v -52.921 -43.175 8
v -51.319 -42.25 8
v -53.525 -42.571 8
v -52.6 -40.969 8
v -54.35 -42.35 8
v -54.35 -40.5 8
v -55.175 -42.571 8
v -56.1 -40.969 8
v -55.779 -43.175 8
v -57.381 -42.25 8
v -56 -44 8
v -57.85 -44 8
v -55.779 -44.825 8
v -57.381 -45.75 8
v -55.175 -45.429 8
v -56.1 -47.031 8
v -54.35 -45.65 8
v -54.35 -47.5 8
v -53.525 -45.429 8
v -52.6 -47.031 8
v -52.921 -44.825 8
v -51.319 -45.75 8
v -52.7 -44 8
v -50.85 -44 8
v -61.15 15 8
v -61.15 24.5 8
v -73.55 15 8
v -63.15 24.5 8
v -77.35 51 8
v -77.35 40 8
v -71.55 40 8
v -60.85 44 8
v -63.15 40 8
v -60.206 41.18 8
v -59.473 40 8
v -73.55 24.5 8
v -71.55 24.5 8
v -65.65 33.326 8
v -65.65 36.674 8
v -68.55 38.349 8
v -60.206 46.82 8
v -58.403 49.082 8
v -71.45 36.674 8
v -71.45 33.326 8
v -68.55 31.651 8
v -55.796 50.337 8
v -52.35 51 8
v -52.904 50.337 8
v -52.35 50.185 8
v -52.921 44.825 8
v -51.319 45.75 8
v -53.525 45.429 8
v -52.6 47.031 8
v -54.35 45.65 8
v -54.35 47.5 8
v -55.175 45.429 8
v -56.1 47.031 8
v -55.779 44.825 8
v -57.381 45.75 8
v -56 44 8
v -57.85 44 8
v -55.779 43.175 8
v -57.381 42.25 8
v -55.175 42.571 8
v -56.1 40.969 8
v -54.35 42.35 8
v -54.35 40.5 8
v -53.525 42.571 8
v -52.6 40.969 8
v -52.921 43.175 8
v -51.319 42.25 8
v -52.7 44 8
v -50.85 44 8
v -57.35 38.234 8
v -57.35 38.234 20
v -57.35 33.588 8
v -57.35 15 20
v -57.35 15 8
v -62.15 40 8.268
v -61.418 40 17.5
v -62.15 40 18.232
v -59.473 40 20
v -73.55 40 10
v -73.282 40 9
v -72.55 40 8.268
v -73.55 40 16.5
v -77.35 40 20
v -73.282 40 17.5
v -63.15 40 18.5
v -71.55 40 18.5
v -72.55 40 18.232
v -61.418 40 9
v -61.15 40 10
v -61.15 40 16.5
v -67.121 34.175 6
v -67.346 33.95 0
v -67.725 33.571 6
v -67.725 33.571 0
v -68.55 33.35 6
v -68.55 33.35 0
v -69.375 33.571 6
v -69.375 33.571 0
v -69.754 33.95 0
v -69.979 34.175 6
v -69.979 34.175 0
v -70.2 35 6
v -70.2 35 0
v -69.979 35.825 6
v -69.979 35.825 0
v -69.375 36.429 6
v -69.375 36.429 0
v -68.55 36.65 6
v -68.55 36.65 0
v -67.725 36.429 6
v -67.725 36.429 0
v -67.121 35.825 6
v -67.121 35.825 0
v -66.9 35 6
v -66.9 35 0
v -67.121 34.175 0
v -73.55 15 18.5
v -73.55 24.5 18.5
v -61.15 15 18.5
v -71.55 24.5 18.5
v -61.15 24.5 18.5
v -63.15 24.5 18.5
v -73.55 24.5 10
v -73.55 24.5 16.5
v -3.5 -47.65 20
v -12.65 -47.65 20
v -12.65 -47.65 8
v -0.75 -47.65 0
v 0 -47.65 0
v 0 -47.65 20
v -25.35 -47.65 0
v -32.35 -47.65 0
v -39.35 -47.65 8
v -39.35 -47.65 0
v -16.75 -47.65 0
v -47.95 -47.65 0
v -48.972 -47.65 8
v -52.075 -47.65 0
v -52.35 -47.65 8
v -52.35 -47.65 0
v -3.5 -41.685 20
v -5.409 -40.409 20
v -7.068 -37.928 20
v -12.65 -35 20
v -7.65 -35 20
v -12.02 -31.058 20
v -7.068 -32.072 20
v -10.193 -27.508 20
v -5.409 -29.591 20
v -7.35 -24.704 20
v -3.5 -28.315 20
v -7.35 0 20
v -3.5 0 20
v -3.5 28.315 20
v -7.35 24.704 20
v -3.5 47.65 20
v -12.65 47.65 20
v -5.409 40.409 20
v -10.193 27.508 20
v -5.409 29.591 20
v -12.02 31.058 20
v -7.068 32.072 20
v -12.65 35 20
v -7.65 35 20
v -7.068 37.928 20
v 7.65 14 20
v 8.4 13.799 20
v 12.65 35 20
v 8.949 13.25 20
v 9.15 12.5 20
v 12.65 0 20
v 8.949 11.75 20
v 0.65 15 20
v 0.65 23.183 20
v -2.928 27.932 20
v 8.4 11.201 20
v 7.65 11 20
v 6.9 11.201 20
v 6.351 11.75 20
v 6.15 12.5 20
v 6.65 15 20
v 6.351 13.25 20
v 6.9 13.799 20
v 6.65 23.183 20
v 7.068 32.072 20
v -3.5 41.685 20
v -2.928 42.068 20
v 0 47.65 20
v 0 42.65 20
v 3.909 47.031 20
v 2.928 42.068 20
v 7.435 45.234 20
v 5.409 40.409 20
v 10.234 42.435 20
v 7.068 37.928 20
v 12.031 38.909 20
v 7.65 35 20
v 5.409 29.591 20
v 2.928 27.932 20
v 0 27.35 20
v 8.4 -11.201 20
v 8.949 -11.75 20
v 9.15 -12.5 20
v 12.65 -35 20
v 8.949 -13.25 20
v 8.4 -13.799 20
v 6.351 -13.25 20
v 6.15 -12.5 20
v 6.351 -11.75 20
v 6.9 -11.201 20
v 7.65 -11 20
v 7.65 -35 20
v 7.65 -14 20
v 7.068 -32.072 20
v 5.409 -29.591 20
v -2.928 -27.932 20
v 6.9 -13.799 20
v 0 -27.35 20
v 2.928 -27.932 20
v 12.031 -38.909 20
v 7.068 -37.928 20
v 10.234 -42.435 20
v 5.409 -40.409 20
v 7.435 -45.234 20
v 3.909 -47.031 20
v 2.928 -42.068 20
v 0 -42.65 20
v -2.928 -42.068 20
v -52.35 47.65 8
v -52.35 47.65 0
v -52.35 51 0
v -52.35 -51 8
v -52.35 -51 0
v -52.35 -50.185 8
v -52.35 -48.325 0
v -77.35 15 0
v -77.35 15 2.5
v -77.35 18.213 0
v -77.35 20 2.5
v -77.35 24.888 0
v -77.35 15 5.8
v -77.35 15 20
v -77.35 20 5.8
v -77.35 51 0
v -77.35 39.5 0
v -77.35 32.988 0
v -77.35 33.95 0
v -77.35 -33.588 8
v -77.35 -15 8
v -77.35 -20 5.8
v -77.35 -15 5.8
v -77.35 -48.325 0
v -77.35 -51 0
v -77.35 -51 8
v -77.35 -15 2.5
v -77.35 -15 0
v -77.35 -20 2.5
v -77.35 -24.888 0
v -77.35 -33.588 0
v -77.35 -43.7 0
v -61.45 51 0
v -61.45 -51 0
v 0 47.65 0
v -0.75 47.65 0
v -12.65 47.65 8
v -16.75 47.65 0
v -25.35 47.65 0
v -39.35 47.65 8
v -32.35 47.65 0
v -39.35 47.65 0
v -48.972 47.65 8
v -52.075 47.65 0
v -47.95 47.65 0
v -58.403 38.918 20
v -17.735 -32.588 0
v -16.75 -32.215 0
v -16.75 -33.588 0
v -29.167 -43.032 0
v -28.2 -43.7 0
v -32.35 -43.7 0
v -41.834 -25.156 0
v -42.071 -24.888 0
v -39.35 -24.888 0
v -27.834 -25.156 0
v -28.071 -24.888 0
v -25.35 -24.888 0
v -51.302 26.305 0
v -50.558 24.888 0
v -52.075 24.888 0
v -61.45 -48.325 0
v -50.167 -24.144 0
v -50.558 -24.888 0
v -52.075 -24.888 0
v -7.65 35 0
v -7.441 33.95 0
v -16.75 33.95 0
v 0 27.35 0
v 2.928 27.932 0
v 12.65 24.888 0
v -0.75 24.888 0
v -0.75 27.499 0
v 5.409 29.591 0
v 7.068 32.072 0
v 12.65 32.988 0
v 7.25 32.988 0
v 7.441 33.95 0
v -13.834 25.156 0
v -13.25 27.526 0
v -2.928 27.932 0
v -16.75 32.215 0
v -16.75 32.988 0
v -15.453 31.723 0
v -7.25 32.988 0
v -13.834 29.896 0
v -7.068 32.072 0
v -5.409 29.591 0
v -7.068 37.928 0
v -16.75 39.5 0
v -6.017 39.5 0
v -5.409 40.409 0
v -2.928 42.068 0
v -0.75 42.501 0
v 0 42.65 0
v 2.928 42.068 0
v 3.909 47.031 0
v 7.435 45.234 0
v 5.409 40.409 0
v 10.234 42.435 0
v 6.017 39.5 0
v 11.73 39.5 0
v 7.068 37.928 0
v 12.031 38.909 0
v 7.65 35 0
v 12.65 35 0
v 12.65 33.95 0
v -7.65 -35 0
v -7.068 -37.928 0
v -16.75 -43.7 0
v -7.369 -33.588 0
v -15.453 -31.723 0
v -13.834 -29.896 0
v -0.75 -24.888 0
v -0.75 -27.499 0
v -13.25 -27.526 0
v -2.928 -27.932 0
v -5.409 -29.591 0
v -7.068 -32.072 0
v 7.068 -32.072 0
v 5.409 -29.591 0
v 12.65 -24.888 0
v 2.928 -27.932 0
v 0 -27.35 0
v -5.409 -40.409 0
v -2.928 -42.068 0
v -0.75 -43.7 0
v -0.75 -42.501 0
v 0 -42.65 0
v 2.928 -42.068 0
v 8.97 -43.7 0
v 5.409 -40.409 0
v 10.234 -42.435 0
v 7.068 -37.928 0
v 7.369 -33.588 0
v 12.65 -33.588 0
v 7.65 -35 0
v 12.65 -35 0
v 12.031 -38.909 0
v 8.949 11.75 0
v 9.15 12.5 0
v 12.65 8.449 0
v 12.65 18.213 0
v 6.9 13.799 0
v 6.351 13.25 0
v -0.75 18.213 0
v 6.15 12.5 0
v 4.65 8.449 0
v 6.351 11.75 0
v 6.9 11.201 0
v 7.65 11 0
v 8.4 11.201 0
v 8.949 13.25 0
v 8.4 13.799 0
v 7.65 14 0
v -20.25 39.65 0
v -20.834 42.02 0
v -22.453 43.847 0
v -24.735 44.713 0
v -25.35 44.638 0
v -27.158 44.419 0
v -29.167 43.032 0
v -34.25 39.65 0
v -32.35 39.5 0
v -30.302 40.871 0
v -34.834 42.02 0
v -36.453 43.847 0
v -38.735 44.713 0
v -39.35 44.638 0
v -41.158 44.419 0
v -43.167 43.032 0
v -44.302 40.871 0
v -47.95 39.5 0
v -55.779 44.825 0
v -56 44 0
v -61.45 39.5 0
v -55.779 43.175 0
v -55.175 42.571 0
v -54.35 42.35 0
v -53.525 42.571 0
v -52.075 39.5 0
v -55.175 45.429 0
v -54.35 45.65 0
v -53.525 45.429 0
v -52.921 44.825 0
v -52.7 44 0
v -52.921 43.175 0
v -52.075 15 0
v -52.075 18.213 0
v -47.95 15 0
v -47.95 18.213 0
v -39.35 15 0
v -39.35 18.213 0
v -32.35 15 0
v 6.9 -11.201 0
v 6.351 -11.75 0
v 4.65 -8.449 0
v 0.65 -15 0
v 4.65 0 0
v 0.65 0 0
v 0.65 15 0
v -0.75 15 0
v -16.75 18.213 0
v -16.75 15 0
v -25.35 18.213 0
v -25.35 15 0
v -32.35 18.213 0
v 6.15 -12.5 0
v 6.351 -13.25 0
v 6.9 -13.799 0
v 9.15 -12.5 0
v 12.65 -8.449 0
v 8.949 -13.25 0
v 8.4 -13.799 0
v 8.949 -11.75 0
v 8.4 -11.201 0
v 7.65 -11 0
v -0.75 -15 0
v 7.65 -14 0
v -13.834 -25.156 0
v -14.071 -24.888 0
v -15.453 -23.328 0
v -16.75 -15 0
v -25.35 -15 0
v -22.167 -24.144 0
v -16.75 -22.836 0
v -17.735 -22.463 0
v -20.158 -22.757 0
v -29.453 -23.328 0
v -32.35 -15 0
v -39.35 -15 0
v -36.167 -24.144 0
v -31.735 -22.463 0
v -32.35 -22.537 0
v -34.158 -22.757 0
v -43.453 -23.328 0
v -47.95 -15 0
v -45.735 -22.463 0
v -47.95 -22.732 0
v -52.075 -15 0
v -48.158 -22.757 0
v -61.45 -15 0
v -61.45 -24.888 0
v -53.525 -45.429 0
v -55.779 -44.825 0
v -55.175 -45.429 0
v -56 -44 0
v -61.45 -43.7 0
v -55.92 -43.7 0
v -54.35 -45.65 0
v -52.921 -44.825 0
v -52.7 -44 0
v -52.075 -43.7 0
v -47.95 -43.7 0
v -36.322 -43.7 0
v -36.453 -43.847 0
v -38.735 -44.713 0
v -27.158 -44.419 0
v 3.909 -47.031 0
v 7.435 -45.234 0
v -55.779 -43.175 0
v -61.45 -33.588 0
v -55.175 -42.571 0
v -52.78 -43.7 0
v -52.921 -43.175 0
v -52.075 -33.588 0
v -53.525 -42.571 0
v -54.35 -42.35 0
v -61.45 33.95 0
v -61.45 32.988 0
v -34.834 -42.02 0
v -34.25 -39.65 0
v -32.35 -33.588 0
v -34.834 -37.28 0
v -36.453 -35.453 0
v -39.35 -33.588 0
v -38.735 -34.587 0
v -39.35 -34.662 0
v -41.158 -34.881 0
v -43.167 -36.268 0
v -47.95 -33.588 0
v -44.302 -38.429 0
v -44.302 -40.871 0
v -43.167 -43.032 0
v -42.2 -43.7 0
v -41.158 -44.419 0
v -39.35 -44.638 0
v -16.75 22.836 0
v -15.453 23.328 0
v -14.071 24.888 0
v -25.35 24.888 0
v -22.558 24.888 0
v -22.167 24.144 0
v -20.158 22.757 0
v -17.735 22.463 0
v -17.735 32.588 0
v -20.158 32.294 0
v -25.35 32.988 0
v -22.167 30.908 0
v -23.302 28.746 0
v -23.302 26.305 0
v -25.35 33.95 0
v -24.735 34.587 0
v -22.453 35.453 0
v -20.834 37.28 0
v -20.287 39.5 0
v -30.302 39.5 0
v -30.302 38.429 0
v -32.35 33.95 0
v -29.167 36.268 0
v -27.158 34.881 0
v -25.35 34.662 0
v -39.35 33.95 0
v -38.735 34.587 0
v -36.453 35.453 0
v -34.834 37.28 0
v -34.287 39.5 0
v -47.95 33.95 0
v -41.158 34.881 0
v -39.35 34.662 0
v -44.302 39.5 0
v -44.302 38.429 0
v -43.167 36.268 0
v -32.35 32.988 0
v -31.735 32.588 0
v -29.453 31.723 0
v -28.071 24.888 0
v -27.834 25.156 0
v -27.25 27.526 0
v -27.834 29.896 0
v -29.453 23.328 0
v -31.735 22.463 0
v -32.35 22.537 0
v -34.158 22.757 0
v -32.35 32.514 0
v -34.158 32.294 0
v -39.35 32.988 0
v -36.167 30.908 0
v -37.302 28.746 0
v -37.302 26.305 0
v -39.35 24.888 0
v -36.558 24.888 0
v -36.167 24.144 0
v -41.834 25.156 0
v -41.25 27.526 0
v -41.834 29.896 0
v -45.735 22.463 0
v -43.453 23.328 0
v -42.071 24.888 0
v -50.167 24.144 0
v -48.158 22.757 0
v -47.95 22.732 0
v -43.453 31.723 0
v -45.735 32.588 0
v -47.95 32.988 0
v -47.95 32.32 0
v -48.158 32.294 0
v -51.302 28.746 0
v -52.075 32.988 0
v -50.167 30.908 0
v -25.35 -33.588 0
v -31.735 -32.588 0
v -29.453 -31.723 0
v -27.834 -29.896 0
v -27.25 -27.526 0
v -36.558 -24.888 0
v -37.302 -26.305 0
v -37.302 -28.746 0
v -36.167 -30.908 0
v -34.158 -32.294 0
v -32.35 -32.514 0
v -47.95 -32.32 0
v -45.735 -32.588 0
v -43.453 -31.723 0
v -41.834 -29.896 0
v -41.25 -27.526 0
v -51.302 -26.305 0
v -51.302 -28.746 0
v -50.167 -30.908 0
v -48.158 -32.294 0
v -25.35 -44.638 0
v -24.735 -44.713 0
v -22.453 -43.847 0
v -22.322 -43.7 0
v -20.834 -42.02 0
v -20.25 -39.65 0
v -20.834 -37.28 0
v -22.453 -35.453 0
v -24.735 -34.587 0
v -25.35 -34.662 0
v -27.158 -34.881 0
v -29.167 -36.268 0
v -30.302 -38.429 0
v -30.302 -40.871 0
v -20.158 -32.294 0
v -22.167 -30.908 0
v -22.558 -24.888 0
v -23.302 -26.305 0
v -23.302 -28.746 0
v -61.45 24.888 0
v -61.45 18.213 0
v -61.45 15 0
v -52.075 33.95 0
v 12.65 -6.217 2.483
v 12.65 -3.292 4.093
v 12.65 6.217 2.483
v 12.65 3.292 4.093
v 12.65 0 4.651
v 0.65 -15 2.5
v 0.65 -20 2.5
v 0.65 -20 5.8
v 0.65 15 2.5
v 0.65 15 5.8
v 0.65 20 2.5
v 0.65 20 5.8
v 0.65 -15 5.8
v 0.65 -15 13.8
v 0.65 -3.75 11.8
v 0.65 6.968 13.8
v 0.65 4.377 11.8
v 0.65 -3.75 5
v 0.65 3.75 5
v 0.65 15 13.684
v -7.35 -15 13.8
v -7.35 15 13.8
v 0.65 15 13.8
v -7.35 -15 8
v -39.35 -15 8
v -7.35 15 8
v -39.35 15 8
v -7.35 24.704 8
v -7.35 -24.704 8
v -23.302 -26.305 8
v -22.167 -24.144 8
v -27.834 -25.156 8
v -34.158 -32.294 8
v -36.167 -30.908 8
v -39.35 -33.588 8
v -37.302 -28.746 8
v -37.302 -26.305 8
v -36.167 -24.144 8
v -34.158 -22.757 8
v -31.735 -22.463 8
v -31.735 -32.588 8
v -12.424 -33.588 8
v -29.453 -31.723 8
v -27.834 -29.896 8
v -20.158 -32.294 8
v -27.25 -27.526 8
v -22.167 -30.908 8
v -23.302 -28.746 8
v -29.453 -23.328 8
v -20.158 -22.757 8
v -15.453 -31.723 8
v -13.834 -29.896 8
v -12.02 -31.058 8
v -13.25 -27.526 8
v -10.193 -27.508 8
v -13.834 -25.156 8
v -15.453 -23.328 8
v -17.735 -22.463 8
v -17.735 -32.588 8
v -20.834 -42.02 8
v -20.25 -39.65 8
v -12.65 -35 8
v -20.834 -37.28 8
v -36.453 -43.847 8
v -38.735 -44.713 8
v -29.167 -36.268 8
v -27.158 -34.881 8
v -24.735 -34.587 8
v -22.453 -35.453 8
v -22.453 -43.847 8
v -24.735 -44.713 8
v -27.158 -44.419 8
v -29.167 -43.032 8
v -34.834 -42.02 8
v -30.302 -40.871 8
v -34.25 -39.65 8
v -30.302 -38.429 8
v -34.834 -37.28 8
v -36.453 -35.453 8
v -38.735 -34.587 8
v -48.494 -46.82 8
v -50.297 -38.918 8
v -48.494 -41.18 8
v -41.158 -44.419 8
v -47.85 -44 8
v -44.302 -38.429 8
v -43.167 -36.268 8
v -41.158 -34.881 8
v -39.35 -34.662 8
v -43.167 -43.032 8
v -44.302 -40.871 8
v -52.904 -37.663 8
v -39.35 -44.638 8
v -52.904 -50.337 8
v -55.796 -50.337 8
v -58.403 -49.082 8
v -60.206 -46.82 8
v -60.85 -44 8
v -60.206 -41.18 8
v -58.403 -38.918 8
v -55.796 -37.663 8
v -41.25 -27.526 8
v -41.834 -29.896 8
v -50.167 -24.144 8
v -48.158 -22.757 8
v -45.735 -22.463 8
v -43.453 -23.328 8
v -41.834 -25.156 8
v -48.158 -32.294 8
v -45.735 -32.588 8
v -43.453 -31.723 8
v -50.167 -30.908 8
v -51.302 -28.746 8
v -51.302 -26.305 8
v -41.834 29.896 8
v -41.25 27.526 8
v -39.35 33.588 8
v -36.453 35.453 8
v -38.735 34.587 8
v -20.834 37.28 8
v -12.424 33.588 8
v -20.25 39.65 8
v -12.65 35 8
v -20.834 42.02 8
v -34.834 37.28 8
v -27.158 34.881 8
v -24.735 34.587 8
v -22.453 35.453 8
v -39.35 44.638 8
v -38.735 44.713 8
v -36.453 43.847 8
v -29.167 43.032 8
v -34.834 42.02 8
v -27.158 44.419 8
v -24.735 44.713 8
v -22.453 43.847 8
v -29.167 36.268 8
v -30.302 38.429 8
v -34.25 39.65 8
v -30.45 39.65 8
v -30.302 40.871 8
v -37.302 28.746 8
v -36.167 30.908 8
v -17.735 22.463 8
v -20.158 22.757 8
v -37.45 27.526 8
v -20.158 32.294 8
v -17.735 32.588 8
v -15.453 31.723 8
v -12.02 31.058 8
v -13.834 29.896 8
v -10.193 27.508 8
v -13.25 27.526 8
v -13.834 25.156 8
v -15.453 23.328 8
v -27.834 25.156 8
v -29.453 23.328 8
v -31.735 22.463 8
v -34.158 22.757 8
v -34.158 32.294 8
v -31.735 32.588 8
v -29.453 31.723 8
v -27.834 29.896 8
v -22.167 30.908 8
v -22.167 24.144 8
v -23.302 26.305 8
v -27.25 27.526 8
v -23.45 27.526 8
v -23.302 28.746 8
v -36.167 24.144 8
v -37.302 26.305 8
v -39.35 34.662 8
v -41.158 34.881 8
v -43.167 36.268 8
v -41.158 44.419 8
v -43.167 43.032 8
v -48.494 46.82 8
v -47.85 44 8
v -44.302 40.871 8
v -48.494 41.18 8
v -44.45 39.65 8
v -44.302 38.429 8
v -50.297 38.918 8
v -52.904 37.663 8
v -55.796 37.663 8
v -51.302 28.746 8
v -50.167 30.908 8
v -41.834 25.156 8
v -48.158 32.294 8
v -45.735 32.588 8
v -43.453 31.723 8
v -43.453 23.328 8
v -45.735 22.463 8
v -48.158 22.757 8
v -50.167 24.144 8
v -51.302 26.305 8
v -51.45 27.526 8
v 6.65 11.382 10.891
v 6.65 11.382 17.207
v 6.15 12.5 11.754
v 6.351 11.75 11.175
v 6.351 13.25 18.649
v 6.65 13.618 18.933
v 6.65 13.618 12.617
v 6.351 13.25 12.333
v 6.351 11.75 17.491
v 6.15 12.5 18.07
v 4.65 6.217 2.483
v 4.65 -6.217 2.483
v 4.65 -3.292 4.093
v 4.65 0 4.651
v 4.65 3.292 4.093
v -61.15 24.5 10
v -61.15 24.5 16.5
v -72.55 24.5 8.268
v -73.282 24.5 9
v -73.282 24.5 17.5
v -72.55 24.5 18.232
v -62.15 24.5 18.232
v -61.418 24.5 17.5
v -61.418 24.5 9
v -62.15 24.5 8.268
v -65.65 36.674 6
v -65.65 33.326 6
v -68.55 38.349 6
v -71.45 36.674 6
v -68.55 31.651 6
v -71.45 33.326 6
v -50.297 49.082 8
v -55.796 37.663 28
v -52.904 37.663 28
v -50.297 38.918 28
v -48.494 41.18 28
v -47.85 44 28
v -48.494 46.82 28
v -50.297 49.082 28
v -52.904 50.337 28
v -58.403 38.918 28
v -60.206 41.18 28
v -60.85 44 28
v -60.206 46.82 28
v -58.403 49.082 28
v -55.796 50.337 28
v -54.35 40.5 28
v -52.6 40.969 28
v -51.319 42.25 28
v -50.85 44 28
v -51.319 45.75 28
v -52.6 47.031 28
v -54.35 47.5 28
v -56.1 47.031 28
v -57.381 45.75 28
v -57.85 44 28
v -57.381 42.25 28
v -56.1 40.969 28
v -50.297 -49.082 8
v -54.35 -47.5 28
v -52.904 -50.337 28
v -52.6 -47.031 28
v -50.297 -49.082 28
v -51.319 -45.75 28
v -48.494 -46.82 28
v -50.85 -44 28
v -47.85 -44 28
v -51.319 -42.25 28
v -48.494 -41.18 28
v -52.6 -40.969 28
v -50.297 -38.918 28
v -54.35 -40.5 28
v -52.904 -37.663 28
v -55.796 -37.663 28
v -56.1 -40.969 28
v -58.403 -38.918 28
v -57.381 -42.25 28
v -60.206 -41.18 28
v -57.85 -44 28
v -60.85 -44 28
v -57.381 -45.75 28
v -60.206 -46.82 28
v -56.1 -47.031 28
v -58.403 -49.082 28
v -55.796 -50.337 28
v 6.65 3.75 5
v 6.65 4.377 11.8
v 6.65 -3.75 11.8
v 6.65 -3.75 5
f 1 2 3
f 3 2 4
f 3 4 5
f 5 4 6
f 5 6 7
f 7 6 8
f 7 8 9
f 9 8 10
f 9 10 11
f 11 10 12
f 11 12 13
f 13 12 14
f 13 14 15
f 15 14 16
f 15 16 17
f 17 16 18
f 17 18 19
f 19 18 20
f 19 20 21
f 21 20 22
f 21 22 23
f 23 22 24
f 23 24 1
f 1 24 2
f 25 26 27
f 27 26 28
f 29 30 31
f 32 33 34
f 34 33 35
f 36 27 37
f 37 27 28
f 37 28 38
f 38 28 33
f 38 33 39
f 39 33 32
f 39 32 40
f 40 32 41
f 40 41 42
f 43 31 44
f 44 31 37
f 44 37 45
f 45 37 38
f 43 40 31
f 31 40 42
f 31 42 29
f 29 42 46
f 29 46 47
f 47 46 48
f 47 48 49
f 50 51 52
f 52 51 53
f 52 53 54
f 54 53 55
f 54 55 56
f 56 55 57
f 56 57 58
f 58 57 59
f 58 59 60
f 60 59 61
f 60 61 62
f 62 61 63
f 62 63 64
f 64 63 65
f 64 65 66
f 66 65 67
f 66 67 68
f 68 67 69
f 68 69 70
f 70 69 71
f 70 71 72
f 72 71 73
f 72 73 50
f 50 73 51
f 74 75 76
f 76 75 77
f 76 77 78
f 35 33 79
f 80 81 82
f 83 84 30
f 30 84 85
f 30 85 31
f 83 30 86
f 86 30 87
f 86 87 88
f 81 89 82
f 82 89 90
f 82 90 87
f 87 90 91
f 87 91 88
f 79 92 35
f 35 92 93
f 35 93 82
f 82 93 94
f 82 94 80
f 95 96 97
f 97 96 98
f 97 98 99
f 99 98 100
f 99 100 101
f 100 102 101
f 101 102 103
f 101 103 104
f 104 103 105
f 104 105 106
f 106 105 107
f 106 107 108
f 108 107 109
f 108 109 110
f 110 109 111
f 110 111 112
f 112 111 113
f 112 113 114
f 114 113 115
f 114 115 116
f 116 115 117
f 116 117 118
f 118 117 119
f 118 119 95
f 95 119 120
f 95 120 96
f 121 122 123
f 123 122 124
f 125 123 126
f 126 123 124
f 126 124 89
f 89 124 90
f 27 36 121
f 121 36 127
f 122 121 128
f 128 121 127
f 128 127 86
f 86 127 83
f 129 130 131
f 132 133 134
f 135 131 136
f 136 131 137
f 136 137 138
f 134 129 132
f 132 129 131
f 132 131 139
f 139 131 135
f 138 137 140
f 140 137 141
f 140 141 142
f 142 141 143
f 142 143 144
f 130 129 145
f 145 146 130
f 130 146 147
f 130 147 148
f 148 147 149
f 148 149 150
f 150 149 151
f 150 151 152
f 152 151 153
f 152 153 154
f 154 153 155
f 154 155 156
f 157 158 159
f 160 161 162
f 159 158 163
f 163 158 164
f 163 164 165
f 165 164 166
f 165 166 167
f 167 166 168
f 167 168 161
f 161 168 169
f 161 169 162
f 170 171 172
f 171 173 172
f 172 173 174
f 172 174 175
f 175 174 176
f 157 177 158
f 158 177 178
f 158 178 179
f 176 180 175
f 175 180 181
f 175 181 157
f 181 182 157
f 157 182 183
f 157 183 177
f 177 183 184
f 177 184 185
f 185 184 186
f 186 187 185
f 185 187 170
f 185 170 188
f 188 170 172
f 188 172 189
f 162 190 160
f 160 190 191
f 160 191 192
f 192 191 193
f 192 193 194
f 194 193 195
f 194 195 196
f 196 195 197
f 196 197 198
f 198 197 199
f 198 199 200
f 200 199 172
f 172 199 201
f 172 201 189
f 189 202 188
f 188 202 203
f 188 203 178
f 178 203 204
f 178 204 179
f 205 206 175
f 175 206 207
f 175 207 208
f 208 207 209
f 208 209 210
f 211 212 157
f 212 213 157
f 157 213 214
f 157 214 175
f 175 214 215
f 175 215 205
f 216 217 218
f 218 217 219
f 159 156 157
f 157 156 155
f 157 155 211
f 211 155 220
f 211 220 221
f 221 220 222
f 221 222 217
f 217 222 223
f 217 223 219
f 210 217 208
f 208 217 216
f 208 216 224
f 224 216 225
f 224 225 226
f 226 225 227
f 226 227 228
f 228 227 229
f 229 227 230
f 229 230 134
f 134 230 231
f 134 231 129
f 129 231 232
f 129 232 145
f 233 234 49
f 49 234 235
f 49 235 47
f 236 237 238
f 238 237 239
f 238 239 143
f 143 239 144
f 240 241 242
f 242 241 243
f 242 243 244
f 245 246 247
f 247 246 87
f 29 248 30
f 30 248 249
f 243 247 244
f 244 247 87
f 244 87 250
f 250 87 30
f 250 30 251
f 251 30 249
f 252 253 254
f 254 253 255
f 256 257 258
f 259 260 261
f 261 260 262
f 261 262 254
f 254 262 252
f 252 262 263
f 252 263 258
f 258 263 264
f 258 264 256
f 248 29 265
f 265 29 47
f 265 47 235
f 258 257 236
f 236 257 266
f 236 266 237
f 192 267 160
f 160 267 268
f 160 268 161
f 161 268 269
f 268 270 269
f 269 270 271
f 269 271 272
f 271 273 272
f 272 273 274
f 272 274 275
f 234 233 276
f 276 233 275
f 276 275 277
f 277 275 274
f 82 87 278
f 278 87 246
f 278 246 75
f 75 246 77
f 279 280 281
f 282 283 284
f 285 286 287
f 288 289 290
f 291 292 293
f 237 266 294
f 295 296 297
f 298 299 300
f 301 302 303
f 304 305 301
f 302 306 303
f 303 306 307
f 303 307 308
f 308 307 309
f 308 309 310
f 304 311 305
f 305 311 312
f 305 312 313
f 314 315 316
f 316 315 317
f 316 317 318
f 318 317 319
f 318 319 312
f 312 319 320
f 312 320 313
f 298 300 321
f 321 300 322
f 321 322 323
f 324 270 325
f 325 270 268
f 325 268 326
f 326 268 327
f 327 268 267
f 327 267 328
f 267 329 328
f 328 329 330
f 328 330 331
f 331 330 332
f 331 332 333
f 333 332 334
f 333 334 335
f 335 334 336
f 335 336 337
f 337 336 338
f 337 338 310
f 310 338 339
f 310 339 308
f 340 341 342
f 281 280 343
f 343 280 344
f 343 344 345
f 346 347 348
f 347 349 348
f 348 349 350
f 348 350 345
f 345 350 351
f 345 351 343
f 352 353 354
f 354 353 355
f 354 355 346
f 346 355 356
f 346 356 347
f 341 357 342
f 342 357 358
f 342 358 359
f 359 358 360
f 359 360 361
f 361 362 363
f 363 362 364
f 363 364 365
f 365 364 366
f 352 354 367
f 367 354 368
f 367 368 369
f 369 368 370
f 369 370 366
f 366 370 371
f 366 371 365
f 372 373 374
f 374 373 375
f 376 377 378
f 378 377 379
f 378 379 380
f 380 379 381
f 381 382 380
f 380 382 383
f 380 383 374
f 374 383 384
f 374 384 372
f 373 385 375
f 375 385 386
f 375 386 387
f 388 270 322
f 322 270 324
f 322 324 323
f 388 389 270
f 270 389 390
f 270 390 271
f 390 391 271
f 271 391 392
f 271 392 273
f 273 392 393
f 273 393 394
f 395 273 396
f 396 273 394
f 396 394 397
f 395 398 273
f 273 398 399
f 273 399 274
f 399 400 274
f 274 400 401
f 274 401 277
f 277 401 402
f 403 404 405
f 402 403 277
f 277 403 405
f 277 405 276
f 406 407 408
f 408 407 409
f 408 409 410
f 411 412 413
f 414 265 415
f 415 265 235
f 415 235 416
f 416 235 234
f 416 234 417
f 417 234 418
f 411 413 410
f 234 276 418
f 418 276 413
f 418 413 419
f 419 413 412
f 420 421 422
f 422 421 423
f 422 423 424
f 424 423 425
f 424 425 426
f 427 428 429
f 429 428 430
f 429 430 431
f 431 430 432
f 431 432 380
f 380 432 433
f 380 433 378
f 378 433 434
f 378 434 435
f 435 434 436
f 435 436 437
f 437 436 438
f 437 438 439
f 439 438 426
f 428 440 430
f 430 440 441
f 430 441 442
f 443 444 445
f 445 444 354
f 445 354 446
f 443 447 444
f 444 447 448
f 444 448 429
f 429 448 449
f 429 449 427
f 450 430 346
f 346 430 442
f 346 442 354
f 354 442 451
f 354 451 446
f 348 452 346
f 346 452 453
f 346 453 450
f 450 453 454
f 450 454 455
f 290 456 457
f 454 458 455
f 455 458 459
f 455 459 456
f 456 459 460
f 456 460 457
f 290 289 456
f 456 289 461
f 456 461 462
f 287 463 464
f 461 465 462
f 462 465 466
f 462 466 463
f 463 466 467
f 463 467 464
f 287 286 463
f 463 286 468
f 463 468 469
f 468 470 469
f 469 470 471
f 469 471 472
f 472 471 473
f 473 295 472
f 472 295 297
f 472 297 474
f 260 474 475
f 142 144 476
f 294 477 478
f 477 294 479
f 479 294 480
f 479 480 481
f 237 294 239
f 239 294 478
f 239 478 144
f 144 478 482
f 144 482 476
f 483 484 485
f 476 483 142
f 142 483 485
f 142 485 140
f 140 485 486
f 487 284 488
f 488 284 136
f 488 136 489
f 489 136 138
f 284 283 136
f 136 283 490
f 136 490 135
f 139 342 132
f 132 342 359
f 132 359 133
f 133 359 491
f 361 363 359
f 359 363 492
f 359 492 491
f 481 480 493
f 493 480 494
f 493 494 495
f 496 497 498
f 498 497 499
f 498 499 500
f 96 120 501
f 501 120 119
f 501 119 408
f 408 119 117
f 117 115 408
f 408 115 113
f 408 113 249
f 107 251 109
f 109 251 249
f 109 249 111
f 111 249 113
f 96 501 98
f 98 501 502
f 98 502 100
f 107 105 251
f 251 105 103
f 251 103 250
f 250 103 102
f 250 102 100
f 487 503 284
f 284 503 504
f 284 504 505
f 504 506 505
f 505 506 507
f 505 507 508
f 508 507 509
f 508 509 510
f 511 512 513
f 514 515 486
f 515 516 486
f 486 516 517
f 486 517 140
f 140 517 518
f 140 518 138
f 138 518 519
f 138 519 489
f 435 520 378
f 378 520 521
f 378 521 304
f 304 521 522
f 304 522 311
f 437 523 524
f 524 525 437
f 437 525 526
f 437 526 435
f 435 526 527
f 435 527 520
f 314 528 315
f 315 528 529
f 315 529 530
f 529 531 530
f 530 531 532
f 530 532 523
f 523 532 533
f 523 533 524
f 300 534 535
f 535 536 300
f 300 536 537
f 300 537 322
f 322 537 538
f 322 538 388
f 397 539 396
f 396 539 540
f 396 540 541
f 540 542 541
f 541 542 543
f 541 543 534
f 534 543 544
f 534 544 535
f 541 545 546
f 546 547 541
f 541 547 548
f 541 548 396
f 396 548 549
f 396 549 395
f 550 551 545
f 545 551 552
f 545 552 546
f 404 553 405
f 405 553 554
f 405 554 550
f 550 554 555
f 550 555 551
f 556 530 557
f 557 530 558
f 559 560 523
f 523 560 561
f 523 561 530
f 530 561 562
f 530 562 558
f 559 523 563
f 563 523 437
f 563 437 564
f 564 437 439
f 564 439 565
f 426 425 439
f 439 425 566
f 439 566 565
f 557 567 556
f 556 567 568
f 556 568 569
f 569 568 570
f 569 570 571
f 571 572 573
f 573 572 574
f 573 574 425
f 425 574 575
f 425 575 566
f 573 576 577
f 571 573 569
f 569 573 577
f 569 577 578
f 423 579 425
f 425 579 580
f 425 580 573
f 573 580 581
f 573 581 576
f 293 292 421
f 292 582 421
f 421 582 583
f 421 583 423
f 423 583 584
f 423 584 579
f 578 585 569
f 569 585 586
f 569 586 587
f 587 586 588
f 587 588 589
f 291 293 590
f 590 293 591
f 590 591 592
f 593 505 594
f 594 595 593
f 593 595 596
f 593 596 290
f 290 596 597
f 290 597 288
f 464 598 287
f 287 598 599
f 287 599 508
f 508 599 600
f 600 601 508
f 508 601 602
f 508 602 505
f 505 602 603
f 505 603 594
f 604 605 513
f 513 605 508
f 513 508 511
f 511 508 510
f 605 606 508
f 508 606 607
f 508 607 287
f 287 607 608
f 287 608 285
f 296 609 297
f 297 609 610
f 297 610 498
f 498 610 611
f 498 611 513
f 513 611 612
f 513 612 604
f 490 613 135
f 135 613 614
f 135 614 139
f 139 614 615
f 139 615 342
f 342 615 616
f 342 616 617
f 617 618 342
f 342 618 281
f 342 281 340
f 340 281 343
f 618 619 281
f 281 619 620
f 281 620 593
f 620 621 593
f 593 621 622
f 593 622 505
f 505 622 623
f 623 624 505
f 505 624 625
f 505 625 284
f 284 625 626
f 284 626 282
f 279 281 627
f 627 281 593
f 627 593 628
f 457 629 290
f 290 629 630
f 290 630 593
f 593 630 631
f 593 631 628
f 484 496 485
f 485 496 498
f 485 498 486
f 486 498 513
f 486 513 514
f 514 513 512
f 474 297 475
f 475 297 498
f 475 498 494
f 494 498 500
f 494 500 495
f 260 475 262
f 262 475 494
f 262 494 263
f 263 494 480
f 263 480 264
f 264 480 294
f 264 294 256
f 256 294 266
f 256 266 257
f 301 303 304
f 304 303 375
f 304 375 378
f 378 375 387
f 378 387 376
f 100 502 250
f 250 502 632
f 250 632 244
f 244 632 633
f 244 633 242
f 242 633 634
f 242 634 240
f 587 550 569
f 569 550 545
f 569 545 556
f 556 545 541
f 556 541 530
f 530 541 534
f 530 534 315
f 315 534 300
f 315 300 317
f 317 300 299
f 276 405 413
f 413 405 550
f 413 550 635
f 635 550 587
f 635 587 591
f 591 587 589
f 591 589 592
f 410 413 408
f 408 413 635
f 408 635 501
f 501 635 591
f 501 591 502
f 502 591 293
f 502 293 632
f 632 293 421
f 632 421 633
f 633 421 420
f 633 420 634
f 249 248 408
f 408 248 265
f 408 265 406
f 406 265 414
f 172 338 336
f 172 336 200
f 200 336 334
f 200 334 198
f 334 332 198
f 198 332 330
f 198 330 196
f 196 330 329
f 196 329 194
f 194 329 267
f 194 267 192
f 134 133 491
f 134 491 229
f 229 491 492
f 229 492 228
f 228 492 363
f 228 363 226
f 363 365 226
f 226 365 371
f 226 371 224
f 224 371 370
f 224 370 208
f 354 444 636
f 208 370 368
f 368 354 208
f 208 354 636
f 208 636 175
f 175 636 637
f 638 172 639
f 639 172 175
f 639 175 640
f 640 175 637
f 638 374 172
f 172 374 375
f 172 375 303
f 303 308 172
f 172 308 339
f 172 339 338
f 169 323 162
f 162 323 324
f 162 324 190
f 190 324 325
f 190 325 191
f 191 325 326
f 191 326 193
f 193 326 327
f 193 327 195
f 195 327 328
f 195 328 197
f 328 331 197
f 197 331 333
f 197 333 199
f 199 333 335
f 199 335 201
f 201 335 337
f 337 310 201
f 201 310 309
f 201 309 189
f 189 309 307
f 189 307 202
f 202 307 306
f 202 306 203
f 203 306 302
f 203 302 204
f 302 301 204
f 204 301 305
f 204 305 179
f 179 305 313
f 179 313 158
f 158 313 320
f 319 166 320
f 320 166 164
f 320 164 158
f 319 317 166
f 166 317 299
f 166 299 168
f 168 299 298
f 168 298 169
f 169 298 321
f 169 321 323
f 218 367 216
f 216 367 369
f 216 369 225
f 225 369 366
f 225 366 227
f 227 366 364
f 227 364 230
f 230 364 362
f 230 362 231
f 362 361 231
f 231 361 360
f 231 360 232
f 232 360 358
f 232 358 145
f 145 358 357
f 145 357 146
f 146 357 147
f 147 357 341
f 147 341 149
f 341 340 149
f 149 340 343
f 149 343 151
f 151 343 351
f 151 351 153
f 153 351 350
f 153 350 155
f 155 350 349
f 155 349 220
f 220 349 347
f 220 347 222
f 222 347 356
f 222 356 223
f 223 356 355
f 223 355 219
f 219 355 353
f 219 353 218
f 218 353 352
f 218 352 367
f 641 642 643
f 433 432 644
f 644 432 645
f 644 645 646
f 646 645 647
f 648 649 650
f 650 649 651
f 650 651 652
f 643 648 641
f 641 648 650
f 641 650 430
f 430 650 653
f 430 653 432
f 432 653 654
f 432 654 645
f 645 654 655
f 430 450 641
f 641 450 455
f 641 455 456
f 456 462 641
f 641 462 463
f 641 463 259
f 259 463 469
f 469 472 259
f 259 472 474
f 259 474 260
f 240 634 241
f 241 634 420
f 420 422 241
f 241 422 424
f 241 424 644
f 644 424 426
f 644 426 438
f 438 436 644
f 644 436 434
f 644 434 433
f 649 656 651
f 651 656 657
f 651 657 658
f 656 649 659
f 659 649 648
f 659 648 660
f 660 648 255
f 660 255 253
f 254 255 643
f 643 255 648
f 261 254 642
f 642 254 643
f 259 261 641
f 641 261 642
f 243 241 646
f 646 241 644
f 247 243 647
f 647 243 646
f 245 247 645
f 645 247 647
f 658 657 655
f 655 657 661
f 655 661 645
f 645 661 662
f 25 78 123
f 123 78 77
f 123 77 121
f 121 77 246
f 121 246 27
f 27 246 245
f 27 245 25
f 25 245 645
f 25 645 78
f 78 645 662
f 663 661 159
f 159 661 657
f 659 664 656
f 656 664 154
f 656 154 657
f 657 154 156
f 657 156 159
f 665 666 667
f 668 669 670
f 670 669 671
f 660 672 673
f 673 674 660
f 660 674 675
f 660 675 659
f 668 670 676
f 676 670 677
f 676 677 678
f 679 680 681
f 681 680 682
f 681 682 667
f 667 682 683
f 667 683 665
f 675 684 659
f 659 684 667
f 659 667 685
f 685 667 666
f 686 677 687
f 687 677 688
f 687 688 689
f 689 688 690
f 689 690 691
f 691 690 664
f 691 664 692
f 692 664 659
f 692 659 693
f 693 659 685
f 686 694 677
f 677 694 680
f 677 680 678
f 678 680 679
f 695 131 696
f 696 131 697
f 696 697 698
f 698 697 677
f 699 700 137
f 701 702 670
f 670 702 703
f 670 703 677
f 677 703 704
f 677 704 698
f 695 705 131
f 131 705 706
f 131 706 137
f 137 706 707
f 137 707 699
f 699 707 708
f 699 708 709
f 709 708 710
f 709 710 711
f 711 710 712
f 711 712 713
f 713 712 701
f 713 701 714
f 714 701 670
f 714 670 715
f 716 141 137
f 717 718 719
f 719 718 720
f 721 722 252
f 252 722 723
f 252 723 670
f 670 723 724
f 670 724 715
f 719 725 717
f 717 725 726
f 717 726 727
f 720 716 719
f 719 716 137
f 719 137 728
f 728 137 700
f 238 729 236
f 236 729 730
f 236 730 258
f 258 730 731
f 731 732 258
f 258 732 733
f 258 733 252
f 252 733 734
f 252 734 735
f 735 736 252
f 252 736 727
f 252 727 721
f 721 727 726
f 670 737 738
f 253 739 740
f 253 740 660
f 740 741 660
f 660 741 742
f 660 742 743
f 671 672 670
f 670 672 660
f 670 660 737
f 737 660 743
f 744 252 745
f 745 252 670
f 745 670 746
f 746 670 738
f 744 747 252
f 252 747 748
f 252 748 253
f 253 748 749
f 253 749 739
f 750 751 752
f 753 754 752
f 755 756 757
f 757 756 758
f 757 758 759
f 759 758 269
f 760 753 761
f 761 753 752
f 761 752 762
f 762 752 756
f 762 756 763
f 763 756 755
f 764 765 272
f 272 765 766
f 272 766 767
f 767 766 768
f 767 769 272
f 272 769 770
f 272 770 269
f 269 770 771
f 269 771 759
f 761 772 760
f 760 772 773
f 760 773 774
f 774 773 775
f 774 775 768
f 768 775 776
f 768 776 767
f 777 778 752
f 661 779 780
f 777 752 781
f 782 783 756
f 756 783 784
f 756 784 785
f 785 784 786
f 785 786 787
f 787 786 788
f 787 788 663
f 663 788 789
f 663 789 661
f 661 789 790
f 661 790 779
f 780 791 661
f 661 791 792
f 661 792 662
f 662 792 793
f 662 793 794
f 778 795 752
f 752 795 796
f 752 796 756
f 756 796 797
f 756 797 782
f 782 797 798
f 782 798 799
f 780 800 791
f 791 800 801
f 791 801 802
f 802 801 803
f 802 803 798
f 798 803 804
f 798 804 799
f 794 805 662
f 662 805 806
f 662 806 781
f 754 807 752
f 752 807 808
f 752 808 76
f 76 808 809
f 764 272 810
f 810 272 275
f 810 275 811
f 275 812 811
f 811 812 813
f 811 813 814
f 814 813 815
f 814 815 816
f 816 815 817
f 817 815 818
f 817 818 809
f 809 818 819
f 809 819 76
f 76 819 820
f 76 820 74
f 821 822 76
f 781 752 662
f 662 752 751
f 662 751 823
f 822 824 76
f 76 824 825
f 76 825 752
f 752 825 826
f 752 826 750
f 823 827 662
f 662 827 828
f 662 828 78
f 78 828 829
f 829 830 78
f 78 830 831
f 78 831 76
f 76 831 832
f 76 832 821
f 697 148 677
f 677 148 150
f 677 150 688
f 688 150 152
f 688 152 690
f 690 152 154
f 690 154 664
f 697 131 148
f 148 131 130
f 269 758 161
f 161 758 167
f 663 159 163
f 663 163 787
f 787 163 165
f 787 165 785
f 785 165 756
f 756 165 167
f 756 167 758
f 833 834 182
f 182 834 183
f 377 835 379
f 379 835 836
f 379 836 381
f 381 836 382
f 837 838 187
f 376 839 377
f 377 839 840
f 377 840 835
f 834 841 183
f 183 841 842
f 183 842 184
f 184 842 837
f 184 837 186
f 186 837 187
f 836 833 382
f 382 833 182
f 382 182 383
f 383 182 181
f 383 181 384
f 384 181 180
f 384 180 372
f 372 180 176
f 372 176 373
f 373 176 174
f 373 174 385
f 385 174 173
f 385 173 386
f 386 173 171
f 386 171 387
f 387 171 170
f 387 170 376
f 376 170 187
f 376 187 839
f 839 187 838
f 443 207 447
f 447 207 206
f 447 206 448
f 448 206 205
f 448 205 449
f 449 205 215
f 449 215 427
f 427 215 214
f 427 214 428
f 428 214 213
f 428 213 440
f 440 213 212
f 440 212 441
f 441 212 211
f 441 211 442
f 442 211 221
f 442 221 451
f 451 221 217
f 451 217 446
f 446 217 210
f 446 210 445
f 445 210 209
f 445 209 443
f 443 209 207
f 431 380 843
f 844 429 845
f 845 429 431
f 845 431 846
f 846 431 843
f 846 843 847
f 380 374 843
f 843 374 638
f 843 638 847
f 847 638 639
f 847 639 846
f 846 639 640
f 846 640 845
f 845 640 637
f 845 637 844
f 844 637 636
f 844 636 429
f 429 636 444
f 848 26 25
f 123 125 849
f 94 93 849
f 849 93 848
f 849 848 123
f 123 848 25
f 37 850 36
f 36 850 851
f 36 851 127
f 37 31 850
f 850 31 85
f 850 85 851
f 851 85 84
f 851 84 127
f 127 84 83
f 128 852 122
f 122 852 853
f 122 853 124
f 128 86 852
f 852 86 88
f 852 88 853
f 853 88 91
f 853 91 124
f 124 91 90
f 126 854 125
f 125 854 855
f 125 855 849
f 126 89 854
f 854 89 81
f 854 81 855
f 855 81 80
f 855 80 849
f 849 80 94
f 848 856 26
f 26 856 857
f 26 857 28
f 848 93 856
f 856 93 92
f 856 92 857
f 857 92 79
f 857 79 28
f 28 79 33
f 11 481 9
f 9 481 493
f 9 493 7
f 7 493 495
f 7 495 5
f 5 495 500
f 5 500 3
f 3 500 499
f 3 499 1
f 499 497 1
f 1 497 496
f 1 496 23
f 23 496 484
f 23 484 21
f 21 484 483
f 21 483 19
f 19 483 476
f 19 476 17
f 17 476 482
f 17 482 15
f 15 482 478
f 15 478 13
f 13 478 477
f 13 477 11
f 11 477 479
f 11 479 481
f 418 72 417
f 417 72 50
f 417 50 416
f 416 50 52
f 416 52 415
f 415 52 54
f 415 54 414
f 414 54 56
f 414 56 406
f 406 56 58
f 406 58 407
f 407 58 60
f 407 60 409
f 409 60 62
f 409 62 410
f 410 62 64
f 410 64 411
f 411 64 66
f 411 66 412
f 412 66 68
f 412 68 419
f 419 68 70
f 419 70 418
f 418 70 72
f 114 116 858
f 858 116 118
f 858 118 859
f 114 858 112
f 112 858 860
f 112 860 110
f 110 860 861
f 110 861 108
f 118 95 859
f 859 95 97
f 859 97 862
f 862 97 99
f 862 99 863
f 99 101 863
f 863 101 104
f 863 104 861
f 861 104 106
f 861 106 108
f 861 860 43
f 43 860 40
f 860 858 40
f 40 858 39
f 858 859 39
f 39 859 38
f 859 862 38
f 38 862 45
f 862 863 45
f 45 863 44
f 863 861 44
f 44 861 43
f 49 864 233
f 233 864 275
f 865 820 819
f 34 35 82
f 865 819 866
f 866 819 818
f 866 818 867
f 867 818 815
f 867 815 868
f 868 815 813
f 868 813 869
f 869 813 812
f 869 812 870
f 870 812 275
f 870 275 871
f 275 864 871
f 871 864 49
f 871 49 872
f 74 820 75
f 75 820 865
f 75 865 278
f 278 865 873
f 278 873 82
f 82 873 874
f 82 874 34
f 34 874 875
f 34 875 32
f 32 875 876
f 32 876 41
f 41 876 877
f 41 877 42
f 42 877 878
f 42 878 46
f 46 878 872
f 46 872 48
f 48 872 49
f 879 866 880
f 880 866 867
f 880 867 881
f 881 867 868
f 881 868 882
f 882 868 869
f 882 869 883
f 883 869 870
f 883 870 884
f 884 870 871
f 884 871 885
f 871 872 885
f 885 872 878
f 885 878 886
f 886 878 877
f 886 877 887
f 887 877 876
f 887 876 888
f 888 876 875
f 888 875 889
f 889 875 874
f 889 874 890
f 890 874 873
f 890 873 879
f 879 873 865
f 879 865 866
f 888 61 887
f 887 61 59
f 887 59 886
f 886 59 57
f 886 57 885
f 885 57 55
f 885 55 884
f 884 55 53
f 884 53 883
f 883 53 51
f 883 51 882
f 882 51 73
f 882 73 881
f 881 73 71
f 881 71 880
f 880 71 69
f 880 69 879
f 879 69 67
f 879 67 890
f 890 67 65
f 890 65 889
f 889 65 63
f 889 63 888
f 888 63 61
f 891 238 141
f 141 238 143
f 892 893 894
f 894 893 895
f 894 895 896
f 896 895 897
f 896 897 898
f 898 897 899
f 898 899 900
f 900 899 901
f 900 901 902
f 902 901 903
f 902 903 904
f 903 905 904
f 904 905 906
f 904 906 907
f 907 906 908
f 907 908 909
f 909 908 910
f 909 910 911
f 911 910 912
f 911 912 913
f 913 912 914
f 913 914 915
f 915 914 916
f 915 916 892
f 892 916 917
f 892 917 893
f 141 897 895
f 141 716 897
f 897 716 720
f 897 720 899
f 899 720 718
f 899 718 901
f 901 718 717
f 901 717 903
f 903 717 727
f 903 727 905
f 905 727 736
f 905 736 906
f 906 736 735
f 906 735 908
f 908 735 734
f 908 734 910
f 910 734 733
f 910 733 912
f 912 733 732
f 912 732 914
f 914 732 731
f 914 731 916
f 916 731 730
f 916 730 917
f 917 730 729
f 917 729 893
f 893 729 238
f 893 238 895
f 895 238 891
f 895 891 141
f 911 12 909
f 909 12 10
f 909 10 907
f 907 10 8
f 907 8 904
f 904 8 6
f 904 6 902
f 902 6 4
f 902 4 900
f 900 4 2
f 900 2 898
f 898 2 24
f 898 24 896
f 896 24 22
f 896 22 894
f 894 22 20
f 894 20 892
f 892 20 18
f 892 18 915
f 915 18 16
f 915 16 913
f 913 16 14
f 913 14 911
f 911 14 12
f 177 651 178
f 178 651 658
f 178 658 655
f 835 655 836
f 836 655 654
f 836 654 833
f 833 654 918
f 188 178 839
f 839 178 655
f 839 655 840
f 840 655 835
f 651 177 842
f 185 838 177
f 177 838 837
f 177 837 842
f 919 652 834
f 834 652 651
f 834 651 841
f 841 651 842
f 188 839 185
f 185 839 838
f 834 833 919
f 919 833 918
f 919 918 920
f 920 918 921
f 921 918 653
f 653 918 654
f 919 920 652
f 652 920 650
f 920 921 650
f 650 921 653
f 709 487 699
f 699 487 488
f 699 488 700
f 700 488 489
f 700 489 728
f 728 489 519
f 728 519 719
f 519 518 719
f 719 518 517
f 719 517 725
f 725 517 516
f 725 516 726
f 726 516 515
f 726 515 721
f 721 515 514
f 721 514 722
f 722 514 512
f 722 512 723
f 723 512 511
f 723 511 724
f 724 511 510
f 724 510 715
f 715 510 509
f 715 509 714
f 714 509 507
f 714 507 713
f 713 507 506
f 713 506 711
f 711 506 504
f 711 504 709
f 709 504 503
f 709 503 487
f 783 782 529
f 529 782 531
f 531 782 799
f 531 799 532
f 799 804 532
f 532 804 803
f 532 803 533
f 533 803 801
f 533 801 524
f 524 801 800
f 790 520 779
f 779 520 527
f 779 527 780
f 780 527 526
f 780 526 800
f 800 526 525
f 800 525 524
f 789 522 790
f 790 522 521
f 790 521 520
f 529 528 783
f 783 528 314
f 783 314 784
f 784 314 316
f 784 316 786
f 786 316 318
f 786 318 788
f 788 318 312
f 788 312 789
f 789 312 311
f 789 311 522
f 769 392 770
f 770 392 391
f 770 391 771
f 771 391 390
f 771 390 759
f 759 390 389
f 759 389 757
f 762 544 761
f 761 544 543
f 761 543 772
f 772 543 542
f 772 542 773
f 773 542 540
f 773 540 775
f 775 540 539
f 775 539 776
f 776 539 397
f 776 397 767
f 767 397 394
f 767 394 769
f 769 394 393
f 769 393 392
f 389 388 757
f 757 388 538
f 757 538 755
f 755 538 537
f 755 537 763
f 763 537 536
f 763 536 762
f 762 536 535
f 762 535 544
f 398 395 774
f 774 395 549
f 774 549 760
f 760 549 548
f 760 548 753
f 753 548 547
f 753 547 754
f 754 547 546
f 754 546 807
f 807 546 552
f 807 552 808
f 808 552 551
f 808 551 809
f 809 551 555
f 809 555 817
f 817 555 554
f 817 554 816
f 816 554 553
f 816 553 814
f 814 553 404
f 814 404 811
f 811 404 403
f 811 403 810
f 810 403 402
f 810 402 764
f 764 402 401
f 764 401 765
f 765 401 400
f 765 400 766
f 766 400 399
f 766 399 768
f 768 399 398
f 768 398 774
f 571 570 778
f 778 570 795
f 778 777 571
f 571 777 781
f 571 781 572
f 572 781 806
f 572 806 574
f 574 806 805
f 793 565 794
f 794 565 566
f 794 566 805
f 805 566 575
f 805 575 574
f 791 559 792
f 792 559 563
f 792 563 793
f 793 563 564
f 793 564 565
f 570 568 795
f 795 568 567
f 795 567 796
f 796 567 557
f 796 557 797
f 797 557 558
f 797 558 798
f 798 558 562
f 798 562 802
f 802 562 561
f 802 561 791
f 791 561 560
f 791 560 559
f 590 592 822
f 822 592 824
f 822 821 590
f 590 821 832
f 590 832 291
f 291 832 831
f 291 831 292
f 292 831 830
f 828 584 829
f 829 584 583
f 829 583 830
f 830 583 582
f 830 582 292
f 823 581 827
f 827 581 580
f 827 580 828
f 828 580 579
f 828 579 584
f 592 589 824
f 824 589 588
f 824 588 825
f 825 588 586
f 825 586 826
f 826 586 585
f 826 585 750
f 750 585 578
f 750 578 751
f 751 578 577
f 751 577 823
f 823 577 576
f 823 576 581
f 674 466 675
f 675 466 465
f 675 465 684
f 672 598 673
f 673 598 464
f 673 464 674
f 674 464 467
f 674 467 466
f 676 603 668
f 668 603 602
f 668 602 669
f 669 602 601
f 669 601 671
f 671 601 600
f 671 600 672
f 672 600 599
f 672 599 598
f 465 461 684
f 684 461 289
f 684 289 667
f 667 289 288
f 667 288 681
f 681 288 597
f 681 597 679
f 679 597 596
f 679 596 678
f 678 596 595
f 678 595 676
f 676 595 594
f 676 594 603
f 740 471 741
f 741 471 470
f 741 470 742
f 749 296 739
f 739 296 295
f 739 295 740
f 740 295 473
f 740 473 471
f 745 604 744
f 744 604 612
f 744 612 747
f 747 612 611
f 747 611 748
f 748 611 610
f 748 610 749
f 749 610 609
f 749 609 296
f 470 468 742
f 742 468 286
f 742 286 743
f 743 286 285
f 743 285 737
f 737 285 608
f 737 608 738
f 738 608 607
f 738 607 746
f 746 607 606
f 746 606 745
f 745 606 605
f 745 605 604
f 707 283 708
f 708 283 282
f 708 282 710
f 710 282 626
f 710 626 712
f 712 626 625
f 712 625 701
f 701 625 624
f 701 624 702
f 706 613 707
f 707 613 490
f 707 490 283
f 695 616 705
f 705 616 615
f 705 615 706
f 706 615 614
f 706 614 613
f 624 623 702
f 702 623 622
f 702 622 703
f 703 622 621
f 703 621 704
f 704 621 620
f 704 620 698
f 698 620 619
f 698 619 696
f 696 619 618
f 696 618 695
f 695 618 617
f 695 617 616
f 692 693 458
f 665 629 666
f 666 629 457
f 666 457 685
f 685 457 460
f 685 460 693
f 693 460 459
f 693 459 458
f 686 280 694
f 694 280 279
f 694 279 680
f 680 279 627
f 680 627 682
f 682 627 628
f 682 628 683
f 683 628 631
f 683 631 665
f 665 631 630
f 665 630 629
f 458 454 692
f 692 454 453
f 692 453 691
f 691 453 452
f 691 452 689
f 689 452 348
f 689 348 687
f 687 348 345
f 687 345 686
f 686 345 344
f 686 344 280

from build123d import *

# Parameters (mm, degrees)
ESBO_O1_R                  = 7.65
RESSALTO_EXTRUS_O1_DEPTH   = 20
ESBO_O2_W                  = 25
ESBO_O2_H                  = 20
RESSALTO_EXTRUS_O2_DEPTH   = 51
CORTE_EXTRUS_O1_DEPTH      = 78
CORTE_EXTRUS_O4_DEPTH      = 12
ESBO_O6_R                  = 1.5
CORTE_EXTRUS_O6_DEPTH      = 13
CORTE_EXTRUS_O6_DEPTH_BACK = 9
ESBO_O7_R                  = 10
CORTE_EXTRUS_O7_DEPTH      = 8
ESBO_O9_W                  = 12.4
ESBO_O9_H                  = 10.5
CORTE_EXTRUS_O8_DEPTH      = 25
RESSALTO_EXTRUS_O3_DEPTH   = 15.5
ESBO_O12_R                 = 1.65
CORTE_EXTRUS_O9_DEPTH      = 10
CORTE_EXTRUS_O11_DEPTH     = 2
ESBO_O16_R                 = 6.5
ESBO_O16_R_2               = 3.5
RESSALTO_EXTRUS_O4_DEPTH   = 20
CORTE_EXTRUS_O13_DEPTH     = 6
ESBO_O18_R                 = 5.1
CORTE_EXTRUS_O14_DEPTH     = 10


with BuildPart() as part:
    # Esboço1 → Ressalto-extrusão1 (new body)
    with BuildSketch(Plane.XY):
        with BuildLine():
            Line((12.65, 35), (12.65, -35))
            ThreePointArc((12.65, -35), (8.944900782, -43.944900782), (0, -47.65))
            Line((0, -47.65), (-72.35, -47.65))
            Line((-72.35, -47.65), (-72.35, 47.65))
            Line((-72.35, 47.65), (0, 47.65))
            ThreePointArc((0, 47.65), (8.944900782, 43.944900782), (12.65, 35))
        make_face()
        with Locations((0, 35)):
            Circle(ESBO_O1_R, mode=Mode.SUBTRACT)
        with Locations((0, -35)):
            Circle(ESBO_O1_R, mode=Mode.SUBTRACT)
    extrude(amount=RESSALTO_EXTRUS_O1_DEPTH)

    # Esboço2 → Ressalto-extrusão2 (add, symmetric)
    with BuildSketch(Plane(origin=(0, 0, 0), x_dir=(1, 0, 0), z_dir=(0, 1, 0))):
        with Locations((-64.85, -10)):
            Rectangle(ESBO_O2_W, ESBO_O2_H)
    extrude(amount=RESSALTO_EXTRUS_O2_DEPTH, both=True)

    # Esboço3 → Corte-extrusão1 (cut)
    with BuildSketch(Plane.ZY.offset(77.35)):
        Polygon((13.8, 15), (5.8, 15), (5.8, 20), (2.5, 20), (2.5, 15), (-3, 15), (-3, -15), (2.5, -15), (2.5, -20), (5.8, -20), (5.8, -15), (13.8, -15), align=None)
    extrude(amount=-CORTE_EXTRUS_O1_DEPTH, mode=Mode.SUBTRACT)

    # Esboço4 → Corte-extrusão4 (cut)
    with BuildSketch(Plane.XY.offset(20)):
        with BuildLine():
            Line((-77.35, 40), (-57.35, 40))
            Line((-57.35, 40), (-57.35, 15))
            Line((-57.35, 15), (-77.35, 15))
            Line((-77.35, 15), (-77.35, -51))
            Line((-77.35, -51), (-52.35, -51))
            Line((-52.35, -51), (-52.35, -47.65))
            Line((-52.35, -47.65), (-12.65, -47.65))
            Line((-12.65, -47.65), (-12.65, -35))
            ThreePointArc((-12.65, -35), (-11.247221879, -29.210138171), (-7.35, -24.704369859))
            Line((-7.35, -24.704369859), (-7.35, -0.323389166))
            Line((-7.35, -0.323389166), (-7.35, 24.704369859))
            ThreePointArc((-7.35, 24.704369859), (-11.247221879, 29.210138171), (-12.65, 35))
            Line((-12.65, 35), (-12.65, 47.65))
            Line((-12.65, 47.65), (-52.35, 47.65))
            Line((-52.35, 47.65), (-52.35, 51))
            Line((-52.35, 51), (-77.35, 51))
            Line((-77.35, 51), (-77.35, 40))
        make_face()
    extrude(amount=-CORTE_EXTRUS_O4_DEPTH, mode=Mode.SUBTRACT)

    # Esboço6 → Corte-extrusão6 (cut, two sides)
    with BuildSketch(Plane.XY.offset(8)) as corte_extrus_o6_sk:
        with Locations((7.65, 12.5)):
            Circle(ESBO_O6_R)
        with Locations((7.65, -12.5)):
            Circle(ESBO_O6_R)
    extrude(amount=CORTE_EXTRUS_O6_DEPTH, mode=Mode.SUBTRACT)
    extrude(corte_extrus_o6_sk.sketch, amount=-CORTE_EXTRUS_O6_DEPTH_BACK, mode=Mode.SUBTRACT)

    # Esboço7 → Corte-extrusão7 (cut)
    with BuildSketch(Plane(origin=(12.65, 0, 0), x_dir=(0, 0, -1), z_dir=(1, 0, 0))):
        with Locations((5.349094788, 0)):
            Circle(ESBO_O7_R)
    extrude(amount=-CORTE_EXTRUS_O7_DEPTH, mode=Mode.SUBTRACT)

    # Esboço9 → Corte-extrusão8 (cut)
    with BuildSketch(Plane(origin=(0, 40, 0), x_dir=(1, 0, 0), z_dir=(0, 1, 0))):
        with Locations((-67.35, -13.25)):
            Rectangle(ESBO_O9_W, ESBO_O9_H)
    extrude(amount=-CORTE_EXTRUS_O8_DEPTH, mode=Mode.SUBTRACT)

    # Esboço10 → Ressalto-extrusão3 (add)
    with BuildSketch(Plane(origin=(0, 40, 0), x_dir=(1, 0, 0), z_dir=(0, 1, 0))):
        with BuildLine():
            Line((-71.55, -8), (-73.55, -8))
            Line((-73.55, -8), (-73.55, -10))
            ThreePointArc((-73.55, -10), (-72.964213562, -8.585786438), (-71.55, -8))
        make_face()
        with BuildLine():
            Line((-61.15, -8), (-63.15, -8))
            ThreePointArc((-63.15, -8), (-61.735786438, -8.585786438), (-61.15, -10))
            Line((-61.15, -10), (-61.15, -8))
        make_face()
        with BuildLine():
            ThreePointArc((-71.55, -18.5), (-72.964213562, -17.914213562), (-73.55, -16.5))
            Line((-73.55, -16.5), (-73.55, -18.5))
            Line((-73.55, -18.5), (-71.55, -18.5))
        make_face()
        with BuildLine():
            Line((-61.15, -18.5), (-61.15, -16.5))
            ThreePointArc((-61.15, -16.5), (-61.735786438, -17.914213562), (-63.15, -18.5))
            Line((-63.15, -18.5), (-61.15, -18.5))
        make_face()
    extrude(amount=-RESSALTO_EXTRUS_O3_DEPTH)

    # Esboço12 → Corte-extrusão9 (cut)
    with BuildSketch(Plane.XY.offset(8)):
        with Locations((-54.35, -44)):
            Circle(ESBO_O12_R)
        with Locations((-54.35, 44)):
            Circle(ESBO_O12_R)
        with Locations((-68.55, 35)):
            Circle(ESBO_O12_R)
    extrude(amount=-CORTE_EXTRUS_O9_DEPTH, mode=Mode.SUBTRACT)

    # Esboço14 → Corte-extrusão11 (cut)
    with BuildSketch(Plane.XY.offset(8)):
        Polygon((-71.45, 36.674315781), (-71.45, 33.325684219), (-68.55, 31.651368439), (-65.65, 33.325684219), (-65.65, 36.674315781), (-68.55, 38.348631561), align=None)
    extrude(amount=-CORTE_EXTRUS_O11_DEPTH, mode=Mode.SUBTRACT)

    # Esboço16 → Ressalto-extrusão4 (add)
    with BuildSketch(Plane.XY.offset(8)):
        with Locations((-54.35, 44)):
            Circle(ESBO_O16_R)
        with Locations((-54.35, 44)):
            Circle(ESBO_O16_R_2, mode=Mode.SUBTRACT)
        with Locations((-54.35, -44)):
            Circle(ESBO_O16_R)
        with Locations((-54.35, -44)):
            Circle(ESBO_O16_R_2, mode=Mode.SUBTRACT)
    extrude(amount=RESSALTO_EXTRUS_O4_DEPTH)

    # Esboço17 → Corte-extrusão13 (cut)
    with BuildSketch(Plane.ZY.offset(-0.65)):
        Polygon((11.8, 4.376686724), (11.8, -3.75), (5, -3.75), (5, 3.75), (20, 23.182890138), (20, 15), align=None)
    extrude(amount=-CORTE_EXTRUS_O13_DEPTH, mode=Mode.SUBTRACT)

    # Esboço18 → Corte-extrusão14 (cut)
    with BuildSketch(Plane.XY.offset(8)):
        with Locations((-39.35, -39.65)):
            Circle(ESBO_O18_R)
        with Locations((-32.35, -27.525644347)):
            Circle(ESBO_O18_R)
        with Locations((-46.35, -27.525644347)):
            Circle(ESBO_O18_R)
        with Locations((-25.35, -39.65)):
            Circle(ESBO_O18_R)
        with Locations((-18.35, -27.525644347)):
            Circle(ESBO_O18_R)
        with Locations((-18.35, 27.525644347)):
            Circle(ESBO_O18_R)
        with Locations((-25.35, 39.65)):
            Circle(ESBO_O18_R)
        with Locations((-46.35, 27.525644347)):
            Circle(ESBO_O18_R)
        with Locations((-32.35, 27.525644347)):
            Circle(ESBO_O18_R)
        with Locations((-39.35, 39.65)):
            Circle(ESBO_O18_R)
    extrude(amount=-CORTE_EXTRUS_O14_DEPTH, mode=Mode.SUBTRACT)


solid = part.part
